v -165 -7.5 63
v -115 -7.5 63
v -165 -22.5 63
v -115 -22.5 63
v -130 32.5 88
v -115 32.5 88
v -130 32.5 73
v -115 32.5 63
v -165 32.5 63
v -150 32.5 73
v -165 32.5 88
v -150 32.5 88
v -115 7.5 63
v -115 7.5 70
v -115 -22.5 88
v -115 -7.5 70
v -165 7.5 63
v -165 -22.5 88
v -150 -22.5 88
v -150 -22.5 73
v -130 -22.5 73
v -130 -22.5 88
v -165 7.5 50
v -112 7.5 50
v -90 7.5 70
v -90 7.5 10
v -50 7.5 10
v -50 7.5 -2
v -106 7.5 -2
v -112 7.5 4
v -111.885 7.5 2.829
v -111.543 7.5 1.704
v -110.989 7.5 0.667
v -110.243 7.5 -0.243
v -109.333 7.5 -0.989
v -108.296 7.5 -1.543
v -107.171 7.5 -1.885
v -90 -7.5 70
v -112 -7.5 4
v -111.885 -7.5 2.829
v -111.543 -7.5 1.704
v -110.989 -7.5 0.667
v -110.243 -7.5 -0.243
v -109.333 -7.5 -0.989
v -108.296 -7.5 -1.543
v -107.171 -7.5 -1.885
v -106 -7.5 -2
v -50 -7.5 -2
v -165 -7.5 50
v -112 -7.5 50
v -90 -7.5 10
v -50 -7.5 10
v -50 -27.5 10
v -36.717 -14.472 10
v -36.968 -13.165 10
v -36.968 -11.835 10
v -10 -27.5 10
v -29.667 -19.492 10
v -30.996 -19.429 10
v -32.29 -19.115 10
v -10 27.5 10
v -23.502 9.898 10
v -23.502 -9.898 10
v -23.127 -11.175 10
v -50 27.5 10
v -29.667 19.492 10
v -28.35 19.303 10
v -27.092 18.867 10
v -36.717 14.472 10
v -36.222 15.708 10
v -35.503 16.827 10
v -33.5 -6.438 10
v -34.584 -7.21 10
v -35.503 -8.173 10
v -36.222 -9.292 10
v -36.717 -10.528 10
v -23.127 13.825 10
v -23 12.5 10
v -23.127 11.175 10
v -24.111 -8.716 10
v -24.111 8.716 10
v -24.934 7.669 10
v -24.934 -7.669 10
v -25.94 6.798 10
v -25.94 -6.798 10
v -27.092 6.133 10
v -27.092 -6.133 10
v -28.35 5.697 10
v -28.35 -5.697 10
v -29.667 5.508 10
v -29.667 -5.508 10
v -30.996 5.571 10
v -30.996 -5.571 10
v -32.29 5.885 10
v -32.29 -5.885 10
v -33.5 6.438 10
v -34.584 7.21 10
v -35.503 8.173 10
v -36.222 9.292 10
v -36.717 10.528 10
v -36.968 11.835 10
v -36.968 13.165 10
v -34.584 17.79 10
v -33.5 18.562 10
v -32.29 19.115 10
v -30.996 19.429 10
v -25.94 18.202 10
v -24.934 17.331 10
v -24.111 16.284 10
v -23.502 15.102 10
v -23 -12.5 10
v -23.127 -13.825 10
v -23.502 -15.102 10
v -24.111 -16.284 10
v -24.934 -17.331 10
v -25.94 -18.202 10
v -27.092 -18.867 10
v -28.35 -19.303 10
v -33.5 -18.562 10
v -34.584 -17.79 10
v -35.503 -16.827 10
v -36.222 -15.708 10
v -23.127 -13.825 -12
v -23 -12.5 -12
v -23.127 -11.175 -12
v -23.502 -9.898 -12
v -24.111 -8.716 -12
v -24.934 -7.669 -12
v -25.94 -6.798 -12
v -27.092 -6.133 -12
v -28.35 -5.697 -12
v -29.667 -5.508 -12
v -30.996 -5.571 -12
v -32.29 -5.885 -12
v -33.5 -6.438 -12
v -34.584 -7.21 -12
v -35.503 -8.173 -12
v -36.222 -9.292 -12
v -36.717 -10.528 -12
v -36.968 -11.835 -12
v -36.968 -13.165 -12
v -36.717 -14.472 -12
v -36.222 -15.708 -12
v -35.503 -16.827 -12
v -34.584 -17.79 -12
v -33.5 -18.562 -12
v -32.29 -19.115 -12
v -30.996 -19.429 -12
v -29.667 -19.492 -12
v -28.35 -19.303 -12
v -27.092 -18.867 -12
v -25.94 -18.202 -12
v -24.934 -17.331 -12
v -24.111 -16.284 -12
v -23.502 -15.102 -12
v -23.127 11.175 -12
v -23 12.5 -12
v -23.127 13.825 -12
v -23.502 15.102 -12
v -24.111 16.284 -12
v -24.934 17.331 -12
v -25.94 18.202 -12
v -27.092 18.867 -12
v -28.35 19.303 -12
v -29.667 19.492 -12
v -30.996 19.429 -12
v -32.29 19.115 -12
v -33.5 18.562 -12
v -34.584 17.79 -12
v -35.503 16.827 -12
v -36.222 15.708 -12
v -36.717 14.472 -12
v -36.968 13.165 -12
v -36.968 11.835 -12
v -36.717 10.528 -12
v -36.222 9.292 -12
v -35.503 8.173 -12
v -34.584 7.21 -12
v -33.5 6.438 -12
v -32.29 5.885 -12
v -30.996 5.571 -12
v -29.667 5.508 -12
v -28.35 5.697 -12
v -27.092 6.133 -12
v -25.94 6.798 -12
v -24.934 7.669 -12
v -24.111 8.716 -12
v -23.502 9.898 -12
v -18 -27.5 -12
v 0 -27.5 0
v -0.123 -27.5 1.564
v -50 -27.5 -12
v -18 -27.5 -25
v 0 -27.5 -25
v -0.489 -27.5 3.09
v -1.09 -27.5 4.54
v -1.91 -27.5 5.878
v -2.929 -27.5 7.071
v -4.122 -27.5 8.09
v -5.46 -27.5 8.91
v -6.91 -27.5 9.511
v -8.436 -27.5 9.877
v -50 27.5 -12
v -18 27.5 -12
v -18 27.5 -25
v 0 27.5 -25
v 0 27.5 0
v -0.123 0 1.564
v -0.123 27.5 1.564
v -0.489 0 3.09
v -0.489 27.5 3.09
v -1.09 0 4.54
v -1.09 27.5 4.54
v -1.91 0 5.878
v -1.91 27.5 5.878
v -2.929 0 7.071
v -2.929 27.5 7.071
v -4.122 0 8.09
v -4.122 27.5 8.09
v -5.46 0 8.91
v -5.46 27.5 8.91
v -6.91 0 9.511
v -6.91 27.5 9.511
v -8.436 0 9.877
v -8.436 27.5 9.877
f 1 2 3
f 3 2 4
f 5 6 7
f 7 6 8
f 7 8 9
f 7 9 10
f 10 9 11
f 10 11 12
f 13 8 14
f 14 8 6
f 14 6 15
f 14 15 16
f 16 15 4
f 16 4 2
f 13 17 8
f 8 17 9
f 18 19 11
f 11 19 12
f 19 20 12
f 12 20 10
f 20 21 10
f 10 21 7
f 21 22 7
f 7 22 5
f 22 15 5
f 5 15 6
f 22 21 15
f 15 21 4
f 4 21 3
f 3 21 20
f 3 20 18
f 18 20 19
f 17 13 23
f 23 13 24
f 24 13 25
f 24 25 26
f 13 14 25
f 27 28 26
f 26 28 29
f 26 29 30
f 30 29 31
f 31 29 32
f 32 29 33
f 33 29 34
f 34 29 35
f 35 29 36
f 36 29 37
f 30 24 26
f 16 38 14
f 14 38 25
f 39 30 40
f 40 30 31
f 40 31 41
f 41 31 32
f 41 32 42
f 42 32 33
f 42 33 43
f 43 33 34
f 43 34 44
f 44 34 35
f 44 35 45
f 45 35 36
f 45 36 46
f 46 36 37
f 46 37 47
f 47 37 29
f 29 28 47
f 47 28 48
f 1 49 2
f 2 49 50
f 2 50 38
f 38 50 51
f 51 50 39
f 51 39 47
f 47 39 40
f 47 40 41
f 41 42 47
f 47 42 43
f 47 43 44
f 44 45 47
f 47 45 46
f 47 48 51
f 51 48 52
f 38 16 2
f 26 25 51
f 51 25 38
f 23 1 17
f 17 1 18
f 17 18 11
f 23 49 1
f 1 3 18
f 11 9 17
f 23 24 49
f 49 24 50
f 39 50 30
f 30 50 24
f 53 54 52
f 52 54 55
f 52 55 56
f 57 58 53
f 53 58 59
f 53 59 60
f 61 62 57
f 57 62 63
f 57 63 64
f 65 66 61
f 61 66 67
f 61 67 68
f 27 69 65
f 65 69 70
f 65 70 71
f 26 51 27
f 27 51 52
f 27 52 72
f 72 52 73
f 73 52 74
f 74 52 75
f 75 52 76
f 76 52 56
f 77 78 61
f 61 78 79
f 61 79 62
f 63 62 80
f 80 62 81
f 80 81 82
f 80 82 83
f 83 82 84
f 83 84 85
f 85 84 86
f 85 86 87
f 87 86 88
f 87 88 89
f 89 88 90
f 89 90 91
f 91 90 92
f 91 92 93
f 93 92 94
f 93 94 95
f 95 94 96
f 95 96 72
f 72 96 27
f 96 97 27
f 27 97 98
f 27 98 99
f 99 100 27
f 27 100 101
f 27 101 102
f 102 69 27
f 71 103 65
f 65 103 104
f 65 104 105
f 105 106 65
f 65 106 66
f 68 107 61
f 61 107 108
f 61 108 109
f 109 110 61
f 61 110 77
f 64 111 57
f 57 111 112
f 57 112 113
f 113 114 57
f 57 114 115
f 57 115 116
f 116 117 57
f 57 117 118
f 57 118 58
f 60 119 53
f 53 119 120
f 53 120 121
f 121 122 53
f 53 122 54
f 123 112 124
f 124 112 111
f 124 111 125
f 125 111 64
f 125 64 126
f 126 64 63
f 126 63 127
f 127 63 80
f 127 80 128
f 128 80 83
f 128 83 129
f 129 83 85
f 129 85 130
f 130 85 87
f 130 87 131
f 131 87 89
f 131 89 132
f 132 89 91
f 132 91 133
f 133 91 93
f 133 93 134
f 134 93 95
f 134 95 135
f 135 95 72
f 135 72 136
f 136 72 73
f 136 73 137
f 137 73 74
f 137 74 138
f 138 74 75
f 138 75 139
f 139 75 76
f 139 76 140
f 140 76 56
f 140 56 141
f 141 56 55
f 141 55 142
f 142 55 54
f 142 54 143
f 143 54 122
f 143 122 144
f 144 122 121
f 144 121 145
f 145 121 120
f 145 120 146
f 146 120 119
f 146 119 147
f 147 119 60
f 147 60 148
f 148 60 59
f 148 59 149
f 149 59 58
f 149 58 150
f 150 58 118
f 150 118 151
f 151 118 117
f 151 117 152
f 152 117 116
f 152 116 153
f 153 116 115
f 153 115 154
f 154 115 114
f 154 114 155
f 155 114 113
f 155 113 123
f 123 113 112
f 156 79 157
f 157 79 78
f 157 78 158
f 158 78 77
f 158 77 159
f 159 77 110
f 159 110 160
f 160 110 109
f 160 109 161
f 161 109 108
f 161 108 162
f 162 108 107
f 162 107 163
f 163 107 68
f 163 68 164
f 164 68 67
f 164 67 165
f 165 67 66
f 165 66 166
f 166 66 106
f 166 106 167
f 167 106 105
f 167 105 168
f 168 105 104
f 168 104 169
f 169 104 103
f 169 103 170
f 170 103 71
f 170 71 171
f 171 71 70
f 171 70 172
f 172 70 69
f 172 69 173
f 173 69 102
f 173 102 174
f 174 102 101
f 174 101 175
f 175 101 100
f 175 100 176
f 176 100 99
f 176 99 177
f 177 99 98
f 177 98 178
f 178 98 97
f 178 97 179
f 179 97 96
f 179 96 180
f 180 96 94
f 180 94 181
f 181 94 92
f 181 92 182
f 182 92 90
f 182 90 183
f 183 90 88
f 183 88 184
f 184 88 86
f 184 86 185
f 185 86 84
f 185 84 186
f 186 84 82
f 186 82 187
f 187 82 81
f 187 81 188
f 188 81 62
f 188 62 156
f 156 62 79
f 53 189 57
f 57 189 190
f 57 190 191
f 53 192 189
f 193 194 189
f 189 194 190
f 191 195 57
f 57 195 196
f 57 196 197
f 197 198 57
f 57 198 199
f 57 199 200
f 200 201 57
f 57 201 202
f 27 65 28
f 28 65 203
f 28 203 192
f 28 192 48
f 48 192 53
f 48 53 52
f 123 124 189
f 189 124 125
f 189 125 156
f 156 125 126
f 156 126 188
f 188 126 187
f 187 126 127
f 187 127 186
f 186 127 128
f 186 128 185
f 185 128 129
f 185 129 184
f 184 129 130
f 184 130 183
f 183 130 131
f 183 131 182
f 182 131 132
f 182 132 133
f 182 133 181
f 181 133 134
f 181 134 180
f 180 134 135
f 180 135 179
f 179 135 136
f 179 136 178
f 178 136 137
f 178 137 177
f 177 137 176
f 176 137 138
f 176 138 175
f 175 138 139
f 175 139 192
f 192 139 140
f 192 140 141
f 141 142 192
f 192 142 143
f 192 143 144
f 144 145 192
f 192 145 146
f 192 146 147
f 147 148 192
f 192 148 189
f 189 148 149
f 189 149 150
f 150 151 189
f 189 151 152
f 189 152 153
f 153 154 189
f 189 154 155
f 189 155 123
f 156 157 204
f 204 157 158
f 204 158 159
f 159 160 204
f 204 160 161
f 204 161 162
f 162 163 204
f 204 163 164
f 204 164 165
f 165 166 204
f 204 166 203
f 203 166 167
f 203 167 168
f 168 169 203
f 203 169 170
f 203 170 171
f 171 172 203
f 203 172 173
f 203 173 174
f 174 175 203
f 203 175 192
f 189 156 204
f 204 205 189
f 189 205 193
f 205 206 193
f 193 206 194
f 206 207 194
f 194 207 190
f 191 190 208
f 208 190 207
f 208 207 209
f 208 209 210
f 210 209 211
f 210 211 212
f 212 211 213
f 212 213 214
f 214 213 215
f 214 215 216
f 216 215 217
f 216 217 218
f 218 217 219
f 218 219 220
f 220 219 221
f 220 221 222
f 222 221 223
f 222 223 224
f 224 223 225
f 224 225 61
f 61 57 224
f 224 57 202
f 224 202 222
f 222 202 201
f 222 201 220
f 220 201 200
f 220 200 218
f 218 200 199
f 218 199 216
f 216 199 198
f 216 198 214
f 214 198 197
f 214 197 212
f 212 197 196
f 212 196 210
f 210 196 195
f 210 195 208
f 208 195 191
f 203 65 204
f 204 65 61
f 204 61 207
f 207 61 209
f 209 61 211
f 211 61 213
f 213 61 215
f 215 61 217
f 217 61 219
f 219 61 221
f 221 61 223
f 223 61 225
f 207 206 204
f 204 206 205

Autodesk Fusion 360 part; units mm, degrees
sketch "Sketch1" plane through (0, 0, 0) normal (0, 1, 0) x (1, 0, 0)
  line L0 (-18, 25) -> (0, 25)
  line L1 (-50.0002, -10) -> (-50, 12)
  line L2 (-50, 12) -> (-18, 12)
  line L3 (-18, 12) -> (-18, 25)
  line L4 (-50.0002, -10) -> (-10, -10)
  line L5 (0, 0) -> (0, 25)
  arc A0 (-10, -10) -> (0, 0) centre (-10, 0) ccw
  dimension "d6" = 18
  dimension "d7" = 50
  dimension "d8" = 13
  dimension "d10" = 22
  dimension "d11" = 10
extrude "Extrude1" add sketch "Sketch1" along normal mid plane 55
sketch "Sketch2" plane through (0, 0, 10) normal (0, 0, 1) x (-1, 0, 0)
  line L0 (10, 27.5) -> (10, -27.5)
  line L1 (10, -27.5) -> (50.0002, -27.5)
  line L2 (50.0002, -27.5) -> (50.0002, 27.5)
  line L3 (50.0002, 27.5) -> (10, 27.5)
  circle A0 centre (30.0002, 12.5) radius 7
  circle A1 centre (30.0002, -12.5) radius 7
  dimension "d17" = 14
  dimension "d18" = 15
  dimension "d19" = 20
  dimension "d20" = 14
  dimension "d21" = 15
  dimension "d22" = 20
extrude "Extrude2" cut sketch "Sketch2" against normal through all contours A0 | A1
sketch "Sketch3" plane through (0, 0, 0) normal (0, 1, 0) x (1, 0, 0)
  line L0 (-50, 2) -> (-112, 2)
  line L1 (-50, -10) -> (-90, -10)
  line L2 (-112, 2) -> (-112, -50)
  line L3 (-90, -10) -> (-90, -70)
  line L4 (-90, -70) -> (-165, -70)
  line L5 (-165, -70) -> (-165, -50)
  line L6 (-165, -50) -> (-112, -50)
  line L7 (-50, -10) -> (-50, 2)
  dimension "d24" = 62
  dimension "d26" = 40
  dimension "d28" = 52
  dimension "d30" = 75
  dimension "d31" = 20
  dimension "d52" = 12
extrude "Extrude3" add sketch "Sketch3" along normal mid plane 15
fillet "Fillet1" radius 6 1 edges at (-112, 0, -2)
sketch "Sketch5" plane through (0, -7.5, 0) normal (0, -1, 0) x (1, 0, 0)
  arc A0 (-112, 4) -> (-106, -2) centre (-106, 4) ccw
  line L0 (-106, -2) -> (-50.0001, -2)
  line L1 (-50.0001, -2) -> (-50.0002, 10)
  line L2 (-50.0002, 10) -> (-90, 10)
  line L3 (-90, 10) -> (-90, 70)
  line L4 (-90, 70) -> (-165, 70)
  line L5 (-165, 70) -> (-165, 50)
  line L6 (-165, 50) -> (-112, 50)
  line L7 (-112, 50) -> (-112, 4)
  line L8 (-115, 63) -> (-165, 63)
  line L9 (-165, 63) -> (-165, 88)
  line L10 (-165, 88) -> (-150, 88)
  line L11 (-150, 88) -> (-150, 73)
  line L12 (-150, 73) -> (-130, 73)
  line L13 (-130, 73) -> (-130, 88)
  line L14 (-130, 88) -> (-115, 88)
  line L15 (-115, 88) -> (-115, 63)
  dimension "d41" = 50
  dimension "d42" = 25
  dimension "d43" = 15
  dimension "d44" = 15
  dimension "d45" = 20
  dimension "d46" = 15
  dimension "d47" = 18
extrude "Extrude4" add sketch "Sketch5" along normal blind 15 and the other way blind 40 contours L4 L5 L8 L9 L15 | L4 L9 L10 L11 L12 L13 L14 L15
sketch "Sketch6" plane through (0, -7.5, 0) normal (0, -1, 0) x (1, 0, 0)
  line L0 (-115, 63) -> (-165, 63)
  line L1 (-165, 63) -> (-165, 50)
  line L2 (-165, 50) -> (-112, 50)
  line L3 (-112, 50) -> (-112, 4)
  arc A0 (-112, 4) -> (-106, -2) centre (-106, 4) ccw
  line L4 (-106, -2) -> (-50.0001, -2)
  line L5 (-50.0001, -2) -> (-50.0002, 10)
  line L6 (-50.0002, 10) -> (-90, 10)
  line L7 (-90, 10) -> (-90, 70)
  line L8 (-90, 70) -> (-115, 70)
  line L9 (-115, 70) -> (-115, 63)
sketch "Sketch7" plane through (0, -7.5, 0) normal (0, -1, 0) x (1, 0, 0)
